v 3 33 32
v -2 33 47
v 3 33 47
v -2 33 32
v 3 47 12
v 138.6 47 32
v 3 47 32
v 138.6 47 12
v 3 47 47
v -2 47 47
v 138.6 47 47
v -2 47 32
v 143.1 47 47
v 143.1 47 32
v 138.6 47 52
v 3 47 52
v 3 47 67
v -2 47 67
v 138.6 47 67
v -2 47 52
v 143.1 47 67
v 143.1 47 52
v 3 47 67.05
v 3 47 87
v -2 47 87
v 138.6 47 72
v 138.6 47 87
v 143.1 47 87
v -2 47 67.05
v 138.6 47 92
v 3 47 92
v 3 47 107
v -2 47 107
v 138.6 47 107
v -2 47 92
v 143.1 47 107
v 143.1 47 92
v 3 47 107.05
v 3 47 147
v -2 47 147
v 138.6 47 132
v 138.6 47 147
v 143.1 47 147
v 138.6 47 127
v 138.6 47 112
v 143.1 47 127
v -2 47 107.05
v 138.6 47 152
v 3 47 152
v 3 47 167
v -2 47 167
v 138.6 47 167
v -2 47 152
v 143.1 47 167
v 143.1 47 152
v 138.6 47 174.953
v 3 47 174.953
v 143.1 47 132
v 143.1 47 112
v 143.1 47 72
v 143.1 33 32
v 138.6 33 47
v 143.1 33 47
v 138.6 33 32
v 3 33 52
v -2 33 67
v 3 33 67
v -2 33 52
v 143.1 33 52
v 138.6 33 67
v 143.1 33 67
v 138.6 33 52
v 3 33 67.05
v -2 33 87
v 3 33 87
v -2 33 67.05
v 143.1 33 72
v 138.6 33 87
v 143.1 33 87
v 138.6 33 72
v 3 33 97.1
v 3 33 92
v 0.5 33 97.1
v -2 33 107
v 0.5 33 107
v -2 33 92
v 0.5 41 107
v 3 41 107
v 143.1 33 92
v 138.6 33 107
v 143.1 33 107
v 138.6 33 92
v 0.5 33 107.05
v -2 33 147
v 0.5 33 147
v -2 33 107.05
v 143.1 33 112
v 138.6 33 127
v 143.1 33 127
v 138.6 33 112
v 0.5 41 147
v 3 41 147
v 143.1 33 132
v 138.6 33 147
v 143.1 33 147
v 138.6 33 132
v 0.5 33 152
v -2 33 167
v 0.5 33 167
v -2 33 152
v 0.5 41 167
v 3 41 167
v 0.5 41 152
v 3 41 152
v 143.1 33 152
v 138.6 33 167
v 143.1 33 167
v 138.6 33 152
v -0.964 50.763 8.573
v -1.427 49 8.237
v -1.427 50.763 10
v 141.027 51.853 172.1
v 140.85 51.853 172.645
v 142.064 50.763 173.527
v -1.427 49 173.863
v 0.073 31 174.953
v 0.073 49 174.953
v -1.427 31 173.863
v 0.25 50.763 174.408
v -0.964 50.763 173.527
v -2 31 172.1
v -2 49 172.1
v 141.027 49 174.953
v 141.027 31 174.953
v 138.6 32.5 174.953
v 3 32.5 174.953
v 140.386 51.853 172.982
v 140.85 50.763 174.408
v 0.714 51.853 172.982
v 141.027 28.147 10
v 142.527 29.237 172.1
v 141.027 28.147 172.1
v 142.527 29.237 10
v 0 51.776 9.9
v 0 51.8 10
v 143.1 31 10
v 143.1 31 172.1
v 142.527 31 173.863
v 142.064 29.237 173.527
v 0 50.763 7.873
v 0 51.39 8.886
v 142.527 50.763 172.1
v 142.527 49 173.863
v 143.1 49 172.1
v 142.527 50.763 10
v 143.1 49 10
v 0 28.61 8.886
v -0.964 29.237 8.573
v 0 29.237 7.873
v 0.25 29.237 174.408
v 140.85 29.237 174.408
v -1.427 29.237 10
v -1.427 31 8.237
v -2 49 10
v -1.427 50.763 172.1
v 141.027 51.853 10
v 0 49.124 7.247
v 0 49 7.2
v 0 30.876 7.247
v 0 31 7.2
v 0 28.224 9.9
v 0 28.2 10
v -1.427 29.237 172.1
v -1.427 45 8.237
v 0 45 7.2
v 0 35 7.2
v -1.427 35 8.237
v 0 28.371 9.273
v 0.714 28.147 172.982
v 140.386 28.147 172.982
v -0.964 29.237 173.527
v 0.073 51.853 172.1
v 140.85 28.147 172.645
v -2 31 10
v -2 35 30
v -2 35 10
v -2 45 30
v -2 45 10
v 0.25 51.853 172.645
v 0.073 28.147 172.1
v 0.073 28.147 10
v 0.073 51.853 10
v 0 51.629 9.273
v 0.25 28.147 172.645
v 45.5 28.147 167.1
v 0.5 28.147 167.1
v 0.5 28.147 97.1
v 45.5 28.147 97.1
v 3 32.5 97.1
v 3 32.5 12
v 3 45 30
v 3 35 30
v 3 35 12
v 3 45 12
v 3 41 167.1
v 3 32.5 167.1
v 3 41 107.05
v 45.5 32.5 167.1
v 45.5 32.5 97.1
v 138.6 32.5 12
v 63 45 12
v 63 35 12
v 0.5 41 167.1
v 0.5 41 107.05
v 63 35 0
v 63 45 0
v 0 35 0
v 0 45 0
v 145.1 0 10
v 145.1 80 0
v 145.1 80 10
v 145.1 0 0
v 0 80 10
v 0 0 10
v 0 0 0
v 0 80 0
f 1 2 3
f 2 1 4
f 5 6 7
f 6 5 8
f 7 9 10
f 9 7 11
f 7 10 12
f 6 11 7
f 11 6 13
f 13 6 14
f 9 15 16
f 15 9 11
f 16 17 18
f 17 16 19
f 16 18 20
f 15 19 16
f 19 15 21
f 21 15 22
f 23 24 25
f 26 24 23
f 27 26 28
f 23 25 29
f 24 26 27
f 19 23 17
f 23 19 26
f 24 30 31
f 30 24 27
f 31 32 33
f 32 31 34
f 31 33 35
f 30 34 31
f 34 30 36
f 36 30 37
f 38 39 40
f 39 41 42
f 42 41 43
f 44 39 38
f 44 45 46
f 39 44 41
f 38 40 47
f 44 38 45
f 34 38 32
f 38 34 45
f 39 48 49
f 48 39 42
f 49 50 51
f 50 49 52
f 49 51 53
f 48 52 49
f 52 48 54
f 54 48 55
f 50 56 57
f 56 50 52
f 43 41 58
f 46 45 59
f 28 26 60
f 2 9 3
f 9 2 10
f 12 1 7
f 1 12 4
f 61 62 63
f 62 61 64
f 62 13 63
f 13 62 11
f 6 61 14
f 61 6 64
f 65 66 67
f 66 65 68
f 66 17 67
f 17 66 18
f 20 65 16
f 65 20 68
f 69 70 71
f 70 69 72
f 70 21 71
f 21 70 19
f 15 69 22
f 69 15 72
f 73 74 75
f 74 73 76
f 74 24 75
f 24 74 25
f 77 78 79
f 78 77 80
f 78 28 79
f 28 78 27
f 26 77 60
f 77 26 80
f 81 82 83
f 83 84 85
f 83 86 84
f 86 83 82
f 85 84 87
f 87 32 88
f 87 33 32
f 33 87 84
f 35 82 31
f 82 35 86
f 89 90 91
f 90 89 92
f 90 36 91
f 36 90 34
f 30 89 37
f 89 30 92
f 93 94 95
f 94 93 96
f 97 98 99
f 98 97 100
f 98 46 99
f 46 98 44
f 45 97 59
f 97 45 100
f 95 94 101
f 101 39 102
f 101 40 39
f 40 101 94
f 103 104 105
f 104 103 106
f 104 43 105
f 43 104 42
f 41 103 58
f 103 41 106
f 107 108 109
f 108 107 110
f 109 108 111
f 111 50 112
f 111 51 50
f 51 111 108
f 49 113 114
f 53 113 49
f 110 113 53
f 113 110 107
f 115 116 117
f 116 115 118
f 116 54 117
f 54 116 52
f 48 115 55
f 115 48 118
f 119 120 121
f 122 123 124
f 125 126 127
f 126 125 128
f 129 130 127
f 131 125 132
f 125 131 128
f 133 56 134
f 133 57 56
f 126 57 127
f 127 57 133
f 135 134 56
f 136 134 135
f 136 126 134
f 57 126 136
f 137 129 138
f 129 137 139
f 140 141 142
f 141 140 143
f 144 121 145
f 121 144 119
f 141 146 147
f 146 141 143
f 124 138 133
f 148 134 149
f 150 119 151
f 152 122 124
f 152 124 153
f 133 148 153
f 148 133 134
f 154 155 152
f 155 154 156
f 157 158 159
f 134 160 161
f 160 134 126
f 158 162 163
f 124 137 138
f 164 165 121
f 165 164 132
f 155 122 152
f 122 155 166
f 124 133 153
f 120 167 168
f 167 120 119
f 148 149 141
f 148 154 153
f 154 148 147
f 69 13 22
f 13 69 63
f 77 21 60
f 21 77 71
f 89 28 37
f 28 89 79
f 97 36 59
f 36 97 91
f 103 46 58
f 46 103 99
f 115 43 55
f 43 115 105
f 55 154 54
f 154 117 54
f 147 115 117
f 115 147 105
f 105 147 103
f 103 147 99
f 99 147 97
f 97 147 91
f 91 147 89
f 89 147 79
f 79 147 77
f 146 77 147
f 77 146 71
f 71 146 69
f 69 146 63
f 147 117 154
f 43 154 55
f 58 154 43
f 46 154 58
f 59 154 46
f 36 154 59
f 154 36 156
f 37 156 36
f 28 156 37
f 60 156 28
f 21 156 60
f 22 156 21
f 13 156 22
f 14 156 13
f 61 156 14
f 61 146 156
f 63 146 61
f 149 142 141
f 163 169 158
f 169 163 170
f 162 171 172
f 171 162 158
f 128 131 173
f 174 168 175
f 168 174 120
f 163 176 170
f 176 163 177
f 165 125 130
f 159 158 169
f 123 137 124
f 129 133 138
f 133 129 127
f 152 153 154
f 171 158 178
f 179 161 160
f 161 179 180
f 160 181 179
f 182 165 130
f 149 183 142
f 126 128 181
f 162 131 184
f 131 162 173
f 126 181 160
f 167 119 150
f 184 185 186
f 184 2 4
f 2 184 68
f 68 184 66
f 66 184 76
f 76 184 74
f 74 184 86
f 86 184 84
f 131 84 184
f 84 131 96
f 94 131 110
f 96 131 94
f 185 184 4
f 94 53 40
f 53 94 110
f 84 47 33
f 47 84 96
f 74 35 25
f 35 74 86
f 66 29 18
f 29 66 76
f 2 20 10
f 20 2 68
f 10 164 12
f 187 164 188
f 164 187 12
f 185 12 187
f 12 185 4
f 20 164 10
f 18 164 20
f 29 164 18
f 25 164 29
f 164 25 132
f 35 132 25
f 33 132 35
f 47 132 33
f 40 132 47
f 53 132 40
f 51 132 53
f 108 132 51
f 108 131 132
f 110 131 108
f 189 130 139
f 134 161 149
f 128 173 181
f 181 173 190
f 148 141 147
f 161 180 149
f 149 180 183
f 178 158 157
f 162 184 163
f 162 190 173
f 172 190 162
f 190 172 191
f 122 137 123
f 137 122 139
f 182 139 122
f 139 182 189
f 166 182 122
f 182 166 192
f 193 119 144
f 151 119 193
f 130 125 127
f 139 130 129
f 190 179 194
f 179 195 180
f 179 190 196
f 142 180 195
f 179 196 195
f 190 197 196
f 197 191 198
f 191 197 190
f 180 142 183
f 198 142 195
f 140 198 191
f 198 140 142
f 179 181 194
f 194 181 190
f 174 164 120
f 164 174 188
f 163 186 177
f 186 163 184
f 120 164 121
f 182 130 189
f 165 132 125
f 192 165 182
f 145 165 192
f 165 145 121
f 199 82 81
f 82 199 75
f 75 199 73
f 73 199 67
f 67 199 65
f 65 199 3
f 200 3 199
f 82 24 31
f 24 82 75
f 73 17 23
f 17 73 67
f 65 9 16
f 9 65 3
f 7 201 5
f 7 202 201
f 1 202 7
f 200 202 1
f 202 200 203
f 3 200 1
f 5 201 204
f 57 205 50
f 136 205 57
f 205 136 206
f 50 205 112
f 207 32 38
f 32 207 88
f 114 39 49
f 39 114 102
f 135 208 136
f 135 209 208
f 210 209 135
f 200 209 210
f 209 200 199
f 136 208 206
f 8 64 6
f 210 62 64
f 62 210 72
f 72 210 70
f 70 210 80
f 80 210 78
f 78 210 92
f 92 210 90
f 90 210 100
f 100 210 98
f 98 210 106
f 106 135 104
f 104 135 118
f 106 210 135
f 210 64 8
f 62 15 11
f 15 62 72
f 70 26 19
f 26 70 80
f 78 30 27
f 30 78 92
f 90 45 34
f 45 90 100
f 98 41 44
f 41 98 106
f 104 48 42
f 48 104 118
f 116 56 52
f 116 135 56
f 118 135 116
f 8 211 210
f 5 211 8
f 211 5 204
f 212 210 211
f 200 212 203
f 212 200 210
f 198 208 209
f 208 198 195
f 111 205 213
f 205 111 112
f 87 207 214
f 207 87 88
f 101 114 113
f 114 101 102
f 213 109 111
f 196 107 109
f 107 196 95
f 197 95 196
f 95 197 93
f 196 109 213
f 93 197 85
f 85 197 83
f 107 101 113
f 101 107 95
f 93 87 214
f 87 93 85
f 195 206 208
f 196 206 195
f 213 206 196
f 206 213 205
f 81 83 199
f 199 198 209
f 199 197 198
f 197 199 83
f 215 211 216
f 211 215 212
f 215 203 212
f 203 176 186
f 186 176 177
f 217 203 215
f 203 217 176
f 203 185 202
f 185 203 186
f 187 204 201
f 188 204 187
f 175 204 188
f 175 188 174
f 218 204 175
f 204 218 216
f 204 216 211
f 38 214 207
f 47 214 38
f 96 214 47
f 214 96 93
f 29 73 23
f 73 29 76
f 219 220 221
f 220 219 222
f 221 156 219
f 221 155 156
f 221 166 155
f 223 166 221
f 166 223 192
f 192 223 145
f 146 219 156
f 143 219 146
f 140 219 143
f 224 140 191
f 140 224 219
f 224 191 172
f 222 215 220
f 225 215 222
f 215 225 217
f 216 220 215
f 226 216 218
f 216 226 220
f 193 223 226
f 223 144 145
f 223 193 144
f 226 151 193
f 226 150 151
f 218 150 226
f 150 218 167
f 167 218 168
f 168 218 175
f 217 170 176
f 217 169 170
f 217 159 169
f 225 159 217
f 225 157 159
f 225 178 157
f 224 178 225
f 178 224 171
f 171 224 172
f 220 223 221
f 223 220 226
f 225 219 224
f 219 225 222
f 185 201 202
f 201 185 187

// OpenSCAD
// Archivo: Chasis.scad
// Pega tu código OpenSCAD aquí.
// Archivo: Final.scad
// Chasis + Base + Tapa para Samsung Galaxy Z Fold 4
// USB-C: ACCESO TOTAL (tu corte original se mantiene intacto)

// === MODO DE IMPRESIÓN (PARA STL) ===
print_mode = "base";  // "base" → base+chasis | "lid" → tapa | "both" → vista previa

// === PARÁMETROS ORIGINALES (NO TOCAR) ===
phone_height = 160.1;
unfolded_width = 135.1;
unfolded_thickness = 14;
case_thickness = 2;
corner_radius = 3;
tolerance = 0.5;

camera_cutout_width = 45;
camera_cutout_height = 70;
camera_x = 20;
camera_y_from_top = 40;

usb_port_length = 80;
usb_port_width = 10;

button_length_vol = 25;
button_length_power = 15;
guide_bevel = 1;

// === BASE ===
base_thick = 10;
base_depth = 80;
base_width = unfolded_width + 2 * case_thickness + 2 * corner_radius;

// === TAPA (NUEVA) ===
lid_thickness = case_thickness + 1.5;  // Más gruesa para agarre
lid_clearance = 0.15;
lid_bevel = 0.8;

// === CHASIS (100% TU CÓDIGO ORIGINAL) ===
module slide_in_chassis() {
    difference() {
        minkowski() {
            translate([-case_thickness, -case_thickness, -case_thickness])
            cube([unfolded_width + (2*case_thickness), 
                  phone_height + case_thickness,
                  unfolded_thickness + (2*case_thickness)]);
            sphere(r = corner_radius);
        }
        
        translate([0, 0, 0]) {
            hull() {
                cube([unfolded_width + tolerance, phone_height + 10, unfolded_thickness + tolerance]);
                translate([guide_bevel, 0, guide_bevel])
                  cube([unfolded_width + tolerance - (2*guide_bevel), phone_height + 10, unfolded_thickness + tolerance - (2*guide_bevel)]);
            }
        }
        
        cam_x_center = camera_x;
        cam_y_center = phone_height - camera_y_from_top;
        translate([
            cam_x_center - camera_cutout_width/2, 
            cam_y_center - camera_cutout_height/2, 
            unfolded_thickness - (corner_radius + 5)
        ]) { 
            cube([camera_cutout_width, camera_cutout_height, case_thickness + corner_radius + 10]);
        }
        
        usb_x_center = camera_x; 
        usb_z_center = unfolded_thickness / 2;
        translate([
            usb_x_center - usb_port_length/2,
            -(case_thickness + corner_radius + 5),
            usb_z_center - usb_port_width/2
        ]) {
            cube([usb_port_length, case_thickness + corner_radius + 10, usb_port_width]);
        }
        
        btn_y_vol = phone_height / 2 + 15;
        btn_y_pow = phone_height / 2 - 25;
        translate([-(case_thickness + corner_radius + 5), btn_y_vol, 0])
            cube([case_thickness + corner_radius + 10, button_length_vol, unfolded_thickness]);
        translate([-(case_thickness + corner_radius + 5), btn_y_pow, 0])
            cube([case_thickness + corner_radius + 10, button_length_power, unfolded_thickness]);
        
        for (i = [20:20:phone_height-20]) {
            translate([-(case_thickness + corner_radius + 5), i, 0])
                cube([case_thickness + corner_radius + 10, 15, unfolded_thickness]);
            translate([unfolded_width, i, 0])
                cube([case_thickness + corner_radius + 10, 15, unfolded_thickness]);
        }
    }
}

// === TU unified_piece() – 100% SIN MODIFICAR ===
module unified_piece() {
    difference() {
        union() {
            cube([base_width, base_depth, base_thick]);
            translate([corner_radius, base_depth / 2 + unfolded_thickness / 2, base_thick + case_thickness])
                rotate([90, 0, 0])
                slide_in_chassis();
        }
        
        translate([corner_radius, base_depth / 2 + unfolded_thickness / 2, base_thick + case_thickness])
            rotate([90, 0, 0])
            translate([
                camera_x - usb_port_length / 2,
                -(case_thickness + corner_radius + 7),
                unfolded_thickness / 2 - usb_port_width / 2
            ])
            cube([
                usb_port_length,
                case_thickness + corner_radius + 10 + base_thick + 5,
                usb_port_width
            ]);
    }
}

// === TAPA REMOVIBLE (NUEVA) ===
module lid() {
    inner_w = unfolded_width + tolerance;
    inner_d = unfolded_thickness + tolerance;
    w_large = inner_w - 2 * lid_clearance;
    d_large = inner_d - 2 * lid_clearance;
    w_small = w_large - 2 * lid_bevel;
    d_small = d_large - 2 * lid_bevel;

    difference() {
        hull() {
            translate([0, 0, lid_thickness])
                minkowski() {
                    cube([w_large - 2*corner_radius, d_large - 2*corner_radius, 0.001]);
                    cylinder(r = corner_radius, h = 0.001);
                }
            translate([lid_bevel, lid_bevel, 0])
                cube([w_small, d_small, lid_thickness - lid_bevel]);
        }
        // Agarre
        translate([w_large/2, d_large/2, lid_thickness - 0.8])
            cylinder(r = 7, h = 2, center = true);
    }
}

// === EXPORTAR STL SEGÚN MODO ===
if (print_mode == "base") {
    // Solo base + chasis → STL
    unified_piece();
}
else if (print_mode == "lid") {
    // Solo tapa → STL
    translate([base_width/2, base_depth/2, 0])
        lid();
}
else if (print_mode == "both") {
    // Vista previa
    unified_piece();
    translate([corner_radius, base_depth/2 + unfolded_thickness/2, base_thick + case_thickness + phone_height])
        rotate([90, 0, 0])
        translate([0, lid_thickness, 0])
        lid();
}
